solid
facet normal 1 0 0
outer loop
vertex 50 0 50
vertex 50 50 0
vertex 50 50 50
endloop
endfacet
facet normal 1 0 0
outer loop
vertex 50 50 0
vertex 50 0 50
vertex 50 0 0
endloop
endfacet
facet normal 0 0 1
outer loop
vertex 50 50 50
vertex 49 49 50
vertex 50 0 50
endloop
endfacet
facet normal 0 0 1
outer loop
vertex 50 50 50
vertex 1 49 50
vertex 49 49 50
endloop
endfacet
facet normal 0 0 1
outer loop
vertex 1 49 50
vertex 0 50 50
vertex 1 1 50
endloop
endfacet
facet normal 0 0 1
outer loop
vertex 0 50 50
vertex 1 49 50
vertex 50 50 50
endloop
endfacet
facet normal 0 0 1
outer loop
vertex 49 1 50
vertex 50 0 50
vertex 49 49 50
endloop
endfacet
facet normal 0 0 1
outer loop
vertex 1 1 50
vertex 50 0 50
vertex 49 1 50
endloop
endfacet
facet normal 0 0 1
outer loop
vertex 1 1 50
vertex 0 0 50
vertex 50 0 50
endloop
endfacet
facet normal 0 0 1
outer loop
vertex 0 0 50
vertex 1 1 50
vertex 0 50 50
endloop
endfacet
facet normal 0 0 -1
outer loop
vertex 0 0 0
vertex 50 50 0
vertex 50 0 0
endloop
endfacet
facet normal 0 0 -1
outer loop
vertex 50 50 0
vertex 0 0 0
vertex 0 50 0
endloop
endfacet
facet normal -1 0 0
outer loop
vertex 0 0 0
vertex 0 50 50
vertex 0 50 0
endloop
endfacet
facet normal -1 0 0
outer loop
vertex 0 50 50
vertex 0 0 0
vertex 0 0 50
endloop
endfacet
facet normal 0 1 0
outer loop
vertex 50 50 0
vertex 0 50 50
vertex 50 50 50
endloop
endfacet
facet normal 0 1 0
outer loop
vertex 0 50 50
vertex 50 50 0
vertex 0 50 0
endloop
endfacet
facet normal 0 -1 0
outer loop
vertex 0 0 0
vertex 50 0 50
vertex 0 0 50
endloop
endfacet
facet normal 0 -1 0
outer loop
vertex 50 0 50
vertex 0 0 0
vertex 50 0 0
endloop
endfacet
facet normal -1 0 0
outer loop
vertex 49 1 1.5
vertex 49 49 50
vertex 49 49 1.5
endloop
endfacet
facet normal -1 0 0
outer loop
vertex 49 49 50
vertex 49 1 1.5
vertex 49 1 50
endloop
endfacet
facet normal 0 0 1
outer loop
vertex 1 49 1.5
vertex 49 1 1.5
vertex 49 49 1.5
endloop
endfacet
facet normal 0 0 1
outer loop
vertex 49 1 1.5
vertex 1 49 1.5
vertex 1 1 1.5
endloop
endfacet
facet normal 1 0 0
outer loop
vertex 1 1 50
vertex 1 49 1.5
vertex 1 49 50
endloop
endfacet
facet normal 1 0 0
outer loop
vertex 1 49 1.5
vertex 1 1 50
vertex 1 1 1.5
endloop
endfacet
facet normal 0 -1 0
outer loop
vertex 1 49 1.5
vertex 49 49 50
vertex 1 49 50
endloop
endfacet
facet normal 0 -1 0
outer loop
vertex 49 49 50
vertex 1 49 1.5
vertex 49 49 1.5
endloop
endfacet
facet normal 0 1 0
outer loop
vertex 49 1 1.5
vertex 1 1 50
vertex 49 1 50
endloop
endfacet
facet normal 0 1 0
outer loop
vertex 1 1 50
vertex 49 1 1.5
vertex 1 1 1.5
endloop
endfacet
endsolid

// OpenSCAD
include <boardgame_insert_toolkit_lib.2.scad>;

// determines whether lids are output.
g_b_print_lid = true;

// determines whether boxes are output.
g_b_print_box = true;

// Focus on one box
g_isolated_print_box = "";

// Used to visualize how all of the boxes fit together.
g_b_visualization = false;

// this is the outer wall thickness.
// Default = 1.5mm
g_wall_thickness = 1.5;

// The tolerance value is extra space put between planes of the lid and box that fit together.
// Increase the tolerance to loosen the fit and decrease it to tighten it.
//
// Note that the tolerance is applied exclusively to the lid.
// So if the lid is too tight or too loose, change this value ( up for looser fit, down for tighter fit ) and
// you only need to reprint the lid.
//
// The exception is the stackable box, where the bottom of the box is the lid of the box below,
// in which case the tolerance also affects that box bottom.
//
g_tolerance = 0.15;

// This adjusts the position of the lid detents downward.
// The larger the value, the bigger the gap between the lid and the box.
g_tolerance_detents_pos = 0.1;

data =
  [
    [ "box 50x50x50",
      [
        [
          BOX_SIZE_XYZ,
          [50, 50, 50.0]
        ],
        [
          BOX_NO_LID_B, t
        ],
        [
          BOX_COMPONENT,
          [
            [CMP_COMPARTMENT_SIZE_XYZ, [48, 48, 49.0]]
          ]
        ],
      ]
    ],
  ];

MakeAll();
